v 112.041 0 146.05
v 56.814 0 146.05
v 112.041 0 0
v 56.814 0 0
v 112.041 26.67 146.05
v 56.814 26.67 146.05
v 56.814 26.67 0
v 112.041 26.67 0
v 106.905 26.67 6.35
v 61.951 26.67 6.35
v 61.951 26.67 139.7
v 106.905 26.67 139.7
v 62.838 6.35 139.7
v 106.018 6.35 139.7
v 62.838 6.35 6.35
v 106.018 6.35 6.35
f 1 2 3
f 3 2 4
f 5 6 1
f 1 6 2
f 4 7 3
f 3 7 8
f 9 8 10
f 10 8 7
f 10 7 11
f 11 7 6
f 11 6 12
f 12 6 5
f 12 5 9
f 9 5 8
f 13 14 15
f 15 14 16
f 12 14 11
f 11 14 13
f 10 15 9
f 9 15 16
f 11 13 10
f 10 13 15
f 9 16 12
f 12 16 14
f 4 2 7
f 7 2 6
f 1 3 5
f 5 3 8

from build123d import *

# Parameters (mm, degrees)
BOSS_EXTRUDE1_DEPTH = 146.05
BOSS_EXTRUDE2_DEPTH = 6.35
SKETCH3_W           = 274.391313821
SKETCH3_H           = 212.158232336
CUT_EXTRUDE1_DEPTH  = 81.28
SKETCH4_W           = 56.814403599
SKETCH4_H           = 146.05
SKETCH4_W_2         = 112.041307198
CUT_EXTRUDE2_DEPTH  = 269.802733384


with BuildPart() as part:
    # Sketch1 → Boss-Extrude1 (new body)
    with BuildSketch(Plane.XY):
        Polygon((0, 0), (0, 107.95), (3.175, 107.95), (7.6109518, 6.35), (50.7909518, 6.35), (55.226903599, 107.95), (58.401903599, 107.95), (62.837855399, 6.35), (106.017855399, 6.35), (110.453807198, 107.95), (113.628807198, 107.95), (118.064758998, 6.35), (161.244758998, 6.35), (165.680710797, 107.95), (168.855710797, 107.95), (173.291662597, 6.35), (216.471662597, 6.35), (220.907614396, 107.95), (224.082614396, 107.95), (224.082614396, 0), align=None)
    extrude(amount=BOSS_EXTRUDE1_DEPTH)

    # Sketch2 → Boss-Extrude2 (add)
    with BuildSketch(Plane.XY.offset(146.05)):
        Polygon((3.175, 107.95), (55.226903599, 107.95), (50.7909518, 6.35), (7.6109518, 6.35), align=None)
        Polygon((58.401903599, 107.95), (62.837855399, 6.35), (106.017855399, 6.35), (110.453807198, 107.95), align=None)
        Polygon((113.628807198, 107.95), (118.064758998, 6.35), (161.244758998, 6.35), (165.680710797, 107.95), align=None)
        Polygon((168.855710797, 107.95), (173.291662597, 6.35), (216.471662597, 6.35), (220.907614396, 107.95), align=None)
    boss_extrude2 = extrude(amount=-BOSS_EXTRUDE2_DEPTH)

    # Mirror1: Boss-Extrude2 across plane
    add(boss_extrude2.mirror(Plane(origin=(0, 0, 73.025), x_dir=(1, 0, 0), z_dir=(0, 0, -1))))

    # Sketch3 → Cut-Extrude1 (cut)
    with BuildSketch(Plane(origin=(0, 107.95, 0), x_dir=(1, 0, 0), z_dir=(0, 1, 0))):
        with Locations((112.984880501, -67.937773638)):
            Rectangle(SKETCH3_W, SKETCH3_H)
    extrude(amount=-CUT_EXTRUDE1_DEPTH, mode=Mode.SUBTRACT)

    # Sketch4 → Cut-Extrude2 (cut, through all)
    with BuildSketch(Plane(origin=(0, 26.67, 0), x_dir=(1, 0, 0), z_dir=(0, 1, 0))):
        with Locations((28.4072018, -73.025)):
            Rectangle(SKETCH4_W, SKETCH4_H)
        with Locations((168.061960797, -73.025)):
            Rectangle(SKETCH4_W_2, SKETCH4_H)
    extrude(amount=-CUT_EXTRUDE2_DEPTH, mode=Mode.SUBTRACT)


solid = part.part
